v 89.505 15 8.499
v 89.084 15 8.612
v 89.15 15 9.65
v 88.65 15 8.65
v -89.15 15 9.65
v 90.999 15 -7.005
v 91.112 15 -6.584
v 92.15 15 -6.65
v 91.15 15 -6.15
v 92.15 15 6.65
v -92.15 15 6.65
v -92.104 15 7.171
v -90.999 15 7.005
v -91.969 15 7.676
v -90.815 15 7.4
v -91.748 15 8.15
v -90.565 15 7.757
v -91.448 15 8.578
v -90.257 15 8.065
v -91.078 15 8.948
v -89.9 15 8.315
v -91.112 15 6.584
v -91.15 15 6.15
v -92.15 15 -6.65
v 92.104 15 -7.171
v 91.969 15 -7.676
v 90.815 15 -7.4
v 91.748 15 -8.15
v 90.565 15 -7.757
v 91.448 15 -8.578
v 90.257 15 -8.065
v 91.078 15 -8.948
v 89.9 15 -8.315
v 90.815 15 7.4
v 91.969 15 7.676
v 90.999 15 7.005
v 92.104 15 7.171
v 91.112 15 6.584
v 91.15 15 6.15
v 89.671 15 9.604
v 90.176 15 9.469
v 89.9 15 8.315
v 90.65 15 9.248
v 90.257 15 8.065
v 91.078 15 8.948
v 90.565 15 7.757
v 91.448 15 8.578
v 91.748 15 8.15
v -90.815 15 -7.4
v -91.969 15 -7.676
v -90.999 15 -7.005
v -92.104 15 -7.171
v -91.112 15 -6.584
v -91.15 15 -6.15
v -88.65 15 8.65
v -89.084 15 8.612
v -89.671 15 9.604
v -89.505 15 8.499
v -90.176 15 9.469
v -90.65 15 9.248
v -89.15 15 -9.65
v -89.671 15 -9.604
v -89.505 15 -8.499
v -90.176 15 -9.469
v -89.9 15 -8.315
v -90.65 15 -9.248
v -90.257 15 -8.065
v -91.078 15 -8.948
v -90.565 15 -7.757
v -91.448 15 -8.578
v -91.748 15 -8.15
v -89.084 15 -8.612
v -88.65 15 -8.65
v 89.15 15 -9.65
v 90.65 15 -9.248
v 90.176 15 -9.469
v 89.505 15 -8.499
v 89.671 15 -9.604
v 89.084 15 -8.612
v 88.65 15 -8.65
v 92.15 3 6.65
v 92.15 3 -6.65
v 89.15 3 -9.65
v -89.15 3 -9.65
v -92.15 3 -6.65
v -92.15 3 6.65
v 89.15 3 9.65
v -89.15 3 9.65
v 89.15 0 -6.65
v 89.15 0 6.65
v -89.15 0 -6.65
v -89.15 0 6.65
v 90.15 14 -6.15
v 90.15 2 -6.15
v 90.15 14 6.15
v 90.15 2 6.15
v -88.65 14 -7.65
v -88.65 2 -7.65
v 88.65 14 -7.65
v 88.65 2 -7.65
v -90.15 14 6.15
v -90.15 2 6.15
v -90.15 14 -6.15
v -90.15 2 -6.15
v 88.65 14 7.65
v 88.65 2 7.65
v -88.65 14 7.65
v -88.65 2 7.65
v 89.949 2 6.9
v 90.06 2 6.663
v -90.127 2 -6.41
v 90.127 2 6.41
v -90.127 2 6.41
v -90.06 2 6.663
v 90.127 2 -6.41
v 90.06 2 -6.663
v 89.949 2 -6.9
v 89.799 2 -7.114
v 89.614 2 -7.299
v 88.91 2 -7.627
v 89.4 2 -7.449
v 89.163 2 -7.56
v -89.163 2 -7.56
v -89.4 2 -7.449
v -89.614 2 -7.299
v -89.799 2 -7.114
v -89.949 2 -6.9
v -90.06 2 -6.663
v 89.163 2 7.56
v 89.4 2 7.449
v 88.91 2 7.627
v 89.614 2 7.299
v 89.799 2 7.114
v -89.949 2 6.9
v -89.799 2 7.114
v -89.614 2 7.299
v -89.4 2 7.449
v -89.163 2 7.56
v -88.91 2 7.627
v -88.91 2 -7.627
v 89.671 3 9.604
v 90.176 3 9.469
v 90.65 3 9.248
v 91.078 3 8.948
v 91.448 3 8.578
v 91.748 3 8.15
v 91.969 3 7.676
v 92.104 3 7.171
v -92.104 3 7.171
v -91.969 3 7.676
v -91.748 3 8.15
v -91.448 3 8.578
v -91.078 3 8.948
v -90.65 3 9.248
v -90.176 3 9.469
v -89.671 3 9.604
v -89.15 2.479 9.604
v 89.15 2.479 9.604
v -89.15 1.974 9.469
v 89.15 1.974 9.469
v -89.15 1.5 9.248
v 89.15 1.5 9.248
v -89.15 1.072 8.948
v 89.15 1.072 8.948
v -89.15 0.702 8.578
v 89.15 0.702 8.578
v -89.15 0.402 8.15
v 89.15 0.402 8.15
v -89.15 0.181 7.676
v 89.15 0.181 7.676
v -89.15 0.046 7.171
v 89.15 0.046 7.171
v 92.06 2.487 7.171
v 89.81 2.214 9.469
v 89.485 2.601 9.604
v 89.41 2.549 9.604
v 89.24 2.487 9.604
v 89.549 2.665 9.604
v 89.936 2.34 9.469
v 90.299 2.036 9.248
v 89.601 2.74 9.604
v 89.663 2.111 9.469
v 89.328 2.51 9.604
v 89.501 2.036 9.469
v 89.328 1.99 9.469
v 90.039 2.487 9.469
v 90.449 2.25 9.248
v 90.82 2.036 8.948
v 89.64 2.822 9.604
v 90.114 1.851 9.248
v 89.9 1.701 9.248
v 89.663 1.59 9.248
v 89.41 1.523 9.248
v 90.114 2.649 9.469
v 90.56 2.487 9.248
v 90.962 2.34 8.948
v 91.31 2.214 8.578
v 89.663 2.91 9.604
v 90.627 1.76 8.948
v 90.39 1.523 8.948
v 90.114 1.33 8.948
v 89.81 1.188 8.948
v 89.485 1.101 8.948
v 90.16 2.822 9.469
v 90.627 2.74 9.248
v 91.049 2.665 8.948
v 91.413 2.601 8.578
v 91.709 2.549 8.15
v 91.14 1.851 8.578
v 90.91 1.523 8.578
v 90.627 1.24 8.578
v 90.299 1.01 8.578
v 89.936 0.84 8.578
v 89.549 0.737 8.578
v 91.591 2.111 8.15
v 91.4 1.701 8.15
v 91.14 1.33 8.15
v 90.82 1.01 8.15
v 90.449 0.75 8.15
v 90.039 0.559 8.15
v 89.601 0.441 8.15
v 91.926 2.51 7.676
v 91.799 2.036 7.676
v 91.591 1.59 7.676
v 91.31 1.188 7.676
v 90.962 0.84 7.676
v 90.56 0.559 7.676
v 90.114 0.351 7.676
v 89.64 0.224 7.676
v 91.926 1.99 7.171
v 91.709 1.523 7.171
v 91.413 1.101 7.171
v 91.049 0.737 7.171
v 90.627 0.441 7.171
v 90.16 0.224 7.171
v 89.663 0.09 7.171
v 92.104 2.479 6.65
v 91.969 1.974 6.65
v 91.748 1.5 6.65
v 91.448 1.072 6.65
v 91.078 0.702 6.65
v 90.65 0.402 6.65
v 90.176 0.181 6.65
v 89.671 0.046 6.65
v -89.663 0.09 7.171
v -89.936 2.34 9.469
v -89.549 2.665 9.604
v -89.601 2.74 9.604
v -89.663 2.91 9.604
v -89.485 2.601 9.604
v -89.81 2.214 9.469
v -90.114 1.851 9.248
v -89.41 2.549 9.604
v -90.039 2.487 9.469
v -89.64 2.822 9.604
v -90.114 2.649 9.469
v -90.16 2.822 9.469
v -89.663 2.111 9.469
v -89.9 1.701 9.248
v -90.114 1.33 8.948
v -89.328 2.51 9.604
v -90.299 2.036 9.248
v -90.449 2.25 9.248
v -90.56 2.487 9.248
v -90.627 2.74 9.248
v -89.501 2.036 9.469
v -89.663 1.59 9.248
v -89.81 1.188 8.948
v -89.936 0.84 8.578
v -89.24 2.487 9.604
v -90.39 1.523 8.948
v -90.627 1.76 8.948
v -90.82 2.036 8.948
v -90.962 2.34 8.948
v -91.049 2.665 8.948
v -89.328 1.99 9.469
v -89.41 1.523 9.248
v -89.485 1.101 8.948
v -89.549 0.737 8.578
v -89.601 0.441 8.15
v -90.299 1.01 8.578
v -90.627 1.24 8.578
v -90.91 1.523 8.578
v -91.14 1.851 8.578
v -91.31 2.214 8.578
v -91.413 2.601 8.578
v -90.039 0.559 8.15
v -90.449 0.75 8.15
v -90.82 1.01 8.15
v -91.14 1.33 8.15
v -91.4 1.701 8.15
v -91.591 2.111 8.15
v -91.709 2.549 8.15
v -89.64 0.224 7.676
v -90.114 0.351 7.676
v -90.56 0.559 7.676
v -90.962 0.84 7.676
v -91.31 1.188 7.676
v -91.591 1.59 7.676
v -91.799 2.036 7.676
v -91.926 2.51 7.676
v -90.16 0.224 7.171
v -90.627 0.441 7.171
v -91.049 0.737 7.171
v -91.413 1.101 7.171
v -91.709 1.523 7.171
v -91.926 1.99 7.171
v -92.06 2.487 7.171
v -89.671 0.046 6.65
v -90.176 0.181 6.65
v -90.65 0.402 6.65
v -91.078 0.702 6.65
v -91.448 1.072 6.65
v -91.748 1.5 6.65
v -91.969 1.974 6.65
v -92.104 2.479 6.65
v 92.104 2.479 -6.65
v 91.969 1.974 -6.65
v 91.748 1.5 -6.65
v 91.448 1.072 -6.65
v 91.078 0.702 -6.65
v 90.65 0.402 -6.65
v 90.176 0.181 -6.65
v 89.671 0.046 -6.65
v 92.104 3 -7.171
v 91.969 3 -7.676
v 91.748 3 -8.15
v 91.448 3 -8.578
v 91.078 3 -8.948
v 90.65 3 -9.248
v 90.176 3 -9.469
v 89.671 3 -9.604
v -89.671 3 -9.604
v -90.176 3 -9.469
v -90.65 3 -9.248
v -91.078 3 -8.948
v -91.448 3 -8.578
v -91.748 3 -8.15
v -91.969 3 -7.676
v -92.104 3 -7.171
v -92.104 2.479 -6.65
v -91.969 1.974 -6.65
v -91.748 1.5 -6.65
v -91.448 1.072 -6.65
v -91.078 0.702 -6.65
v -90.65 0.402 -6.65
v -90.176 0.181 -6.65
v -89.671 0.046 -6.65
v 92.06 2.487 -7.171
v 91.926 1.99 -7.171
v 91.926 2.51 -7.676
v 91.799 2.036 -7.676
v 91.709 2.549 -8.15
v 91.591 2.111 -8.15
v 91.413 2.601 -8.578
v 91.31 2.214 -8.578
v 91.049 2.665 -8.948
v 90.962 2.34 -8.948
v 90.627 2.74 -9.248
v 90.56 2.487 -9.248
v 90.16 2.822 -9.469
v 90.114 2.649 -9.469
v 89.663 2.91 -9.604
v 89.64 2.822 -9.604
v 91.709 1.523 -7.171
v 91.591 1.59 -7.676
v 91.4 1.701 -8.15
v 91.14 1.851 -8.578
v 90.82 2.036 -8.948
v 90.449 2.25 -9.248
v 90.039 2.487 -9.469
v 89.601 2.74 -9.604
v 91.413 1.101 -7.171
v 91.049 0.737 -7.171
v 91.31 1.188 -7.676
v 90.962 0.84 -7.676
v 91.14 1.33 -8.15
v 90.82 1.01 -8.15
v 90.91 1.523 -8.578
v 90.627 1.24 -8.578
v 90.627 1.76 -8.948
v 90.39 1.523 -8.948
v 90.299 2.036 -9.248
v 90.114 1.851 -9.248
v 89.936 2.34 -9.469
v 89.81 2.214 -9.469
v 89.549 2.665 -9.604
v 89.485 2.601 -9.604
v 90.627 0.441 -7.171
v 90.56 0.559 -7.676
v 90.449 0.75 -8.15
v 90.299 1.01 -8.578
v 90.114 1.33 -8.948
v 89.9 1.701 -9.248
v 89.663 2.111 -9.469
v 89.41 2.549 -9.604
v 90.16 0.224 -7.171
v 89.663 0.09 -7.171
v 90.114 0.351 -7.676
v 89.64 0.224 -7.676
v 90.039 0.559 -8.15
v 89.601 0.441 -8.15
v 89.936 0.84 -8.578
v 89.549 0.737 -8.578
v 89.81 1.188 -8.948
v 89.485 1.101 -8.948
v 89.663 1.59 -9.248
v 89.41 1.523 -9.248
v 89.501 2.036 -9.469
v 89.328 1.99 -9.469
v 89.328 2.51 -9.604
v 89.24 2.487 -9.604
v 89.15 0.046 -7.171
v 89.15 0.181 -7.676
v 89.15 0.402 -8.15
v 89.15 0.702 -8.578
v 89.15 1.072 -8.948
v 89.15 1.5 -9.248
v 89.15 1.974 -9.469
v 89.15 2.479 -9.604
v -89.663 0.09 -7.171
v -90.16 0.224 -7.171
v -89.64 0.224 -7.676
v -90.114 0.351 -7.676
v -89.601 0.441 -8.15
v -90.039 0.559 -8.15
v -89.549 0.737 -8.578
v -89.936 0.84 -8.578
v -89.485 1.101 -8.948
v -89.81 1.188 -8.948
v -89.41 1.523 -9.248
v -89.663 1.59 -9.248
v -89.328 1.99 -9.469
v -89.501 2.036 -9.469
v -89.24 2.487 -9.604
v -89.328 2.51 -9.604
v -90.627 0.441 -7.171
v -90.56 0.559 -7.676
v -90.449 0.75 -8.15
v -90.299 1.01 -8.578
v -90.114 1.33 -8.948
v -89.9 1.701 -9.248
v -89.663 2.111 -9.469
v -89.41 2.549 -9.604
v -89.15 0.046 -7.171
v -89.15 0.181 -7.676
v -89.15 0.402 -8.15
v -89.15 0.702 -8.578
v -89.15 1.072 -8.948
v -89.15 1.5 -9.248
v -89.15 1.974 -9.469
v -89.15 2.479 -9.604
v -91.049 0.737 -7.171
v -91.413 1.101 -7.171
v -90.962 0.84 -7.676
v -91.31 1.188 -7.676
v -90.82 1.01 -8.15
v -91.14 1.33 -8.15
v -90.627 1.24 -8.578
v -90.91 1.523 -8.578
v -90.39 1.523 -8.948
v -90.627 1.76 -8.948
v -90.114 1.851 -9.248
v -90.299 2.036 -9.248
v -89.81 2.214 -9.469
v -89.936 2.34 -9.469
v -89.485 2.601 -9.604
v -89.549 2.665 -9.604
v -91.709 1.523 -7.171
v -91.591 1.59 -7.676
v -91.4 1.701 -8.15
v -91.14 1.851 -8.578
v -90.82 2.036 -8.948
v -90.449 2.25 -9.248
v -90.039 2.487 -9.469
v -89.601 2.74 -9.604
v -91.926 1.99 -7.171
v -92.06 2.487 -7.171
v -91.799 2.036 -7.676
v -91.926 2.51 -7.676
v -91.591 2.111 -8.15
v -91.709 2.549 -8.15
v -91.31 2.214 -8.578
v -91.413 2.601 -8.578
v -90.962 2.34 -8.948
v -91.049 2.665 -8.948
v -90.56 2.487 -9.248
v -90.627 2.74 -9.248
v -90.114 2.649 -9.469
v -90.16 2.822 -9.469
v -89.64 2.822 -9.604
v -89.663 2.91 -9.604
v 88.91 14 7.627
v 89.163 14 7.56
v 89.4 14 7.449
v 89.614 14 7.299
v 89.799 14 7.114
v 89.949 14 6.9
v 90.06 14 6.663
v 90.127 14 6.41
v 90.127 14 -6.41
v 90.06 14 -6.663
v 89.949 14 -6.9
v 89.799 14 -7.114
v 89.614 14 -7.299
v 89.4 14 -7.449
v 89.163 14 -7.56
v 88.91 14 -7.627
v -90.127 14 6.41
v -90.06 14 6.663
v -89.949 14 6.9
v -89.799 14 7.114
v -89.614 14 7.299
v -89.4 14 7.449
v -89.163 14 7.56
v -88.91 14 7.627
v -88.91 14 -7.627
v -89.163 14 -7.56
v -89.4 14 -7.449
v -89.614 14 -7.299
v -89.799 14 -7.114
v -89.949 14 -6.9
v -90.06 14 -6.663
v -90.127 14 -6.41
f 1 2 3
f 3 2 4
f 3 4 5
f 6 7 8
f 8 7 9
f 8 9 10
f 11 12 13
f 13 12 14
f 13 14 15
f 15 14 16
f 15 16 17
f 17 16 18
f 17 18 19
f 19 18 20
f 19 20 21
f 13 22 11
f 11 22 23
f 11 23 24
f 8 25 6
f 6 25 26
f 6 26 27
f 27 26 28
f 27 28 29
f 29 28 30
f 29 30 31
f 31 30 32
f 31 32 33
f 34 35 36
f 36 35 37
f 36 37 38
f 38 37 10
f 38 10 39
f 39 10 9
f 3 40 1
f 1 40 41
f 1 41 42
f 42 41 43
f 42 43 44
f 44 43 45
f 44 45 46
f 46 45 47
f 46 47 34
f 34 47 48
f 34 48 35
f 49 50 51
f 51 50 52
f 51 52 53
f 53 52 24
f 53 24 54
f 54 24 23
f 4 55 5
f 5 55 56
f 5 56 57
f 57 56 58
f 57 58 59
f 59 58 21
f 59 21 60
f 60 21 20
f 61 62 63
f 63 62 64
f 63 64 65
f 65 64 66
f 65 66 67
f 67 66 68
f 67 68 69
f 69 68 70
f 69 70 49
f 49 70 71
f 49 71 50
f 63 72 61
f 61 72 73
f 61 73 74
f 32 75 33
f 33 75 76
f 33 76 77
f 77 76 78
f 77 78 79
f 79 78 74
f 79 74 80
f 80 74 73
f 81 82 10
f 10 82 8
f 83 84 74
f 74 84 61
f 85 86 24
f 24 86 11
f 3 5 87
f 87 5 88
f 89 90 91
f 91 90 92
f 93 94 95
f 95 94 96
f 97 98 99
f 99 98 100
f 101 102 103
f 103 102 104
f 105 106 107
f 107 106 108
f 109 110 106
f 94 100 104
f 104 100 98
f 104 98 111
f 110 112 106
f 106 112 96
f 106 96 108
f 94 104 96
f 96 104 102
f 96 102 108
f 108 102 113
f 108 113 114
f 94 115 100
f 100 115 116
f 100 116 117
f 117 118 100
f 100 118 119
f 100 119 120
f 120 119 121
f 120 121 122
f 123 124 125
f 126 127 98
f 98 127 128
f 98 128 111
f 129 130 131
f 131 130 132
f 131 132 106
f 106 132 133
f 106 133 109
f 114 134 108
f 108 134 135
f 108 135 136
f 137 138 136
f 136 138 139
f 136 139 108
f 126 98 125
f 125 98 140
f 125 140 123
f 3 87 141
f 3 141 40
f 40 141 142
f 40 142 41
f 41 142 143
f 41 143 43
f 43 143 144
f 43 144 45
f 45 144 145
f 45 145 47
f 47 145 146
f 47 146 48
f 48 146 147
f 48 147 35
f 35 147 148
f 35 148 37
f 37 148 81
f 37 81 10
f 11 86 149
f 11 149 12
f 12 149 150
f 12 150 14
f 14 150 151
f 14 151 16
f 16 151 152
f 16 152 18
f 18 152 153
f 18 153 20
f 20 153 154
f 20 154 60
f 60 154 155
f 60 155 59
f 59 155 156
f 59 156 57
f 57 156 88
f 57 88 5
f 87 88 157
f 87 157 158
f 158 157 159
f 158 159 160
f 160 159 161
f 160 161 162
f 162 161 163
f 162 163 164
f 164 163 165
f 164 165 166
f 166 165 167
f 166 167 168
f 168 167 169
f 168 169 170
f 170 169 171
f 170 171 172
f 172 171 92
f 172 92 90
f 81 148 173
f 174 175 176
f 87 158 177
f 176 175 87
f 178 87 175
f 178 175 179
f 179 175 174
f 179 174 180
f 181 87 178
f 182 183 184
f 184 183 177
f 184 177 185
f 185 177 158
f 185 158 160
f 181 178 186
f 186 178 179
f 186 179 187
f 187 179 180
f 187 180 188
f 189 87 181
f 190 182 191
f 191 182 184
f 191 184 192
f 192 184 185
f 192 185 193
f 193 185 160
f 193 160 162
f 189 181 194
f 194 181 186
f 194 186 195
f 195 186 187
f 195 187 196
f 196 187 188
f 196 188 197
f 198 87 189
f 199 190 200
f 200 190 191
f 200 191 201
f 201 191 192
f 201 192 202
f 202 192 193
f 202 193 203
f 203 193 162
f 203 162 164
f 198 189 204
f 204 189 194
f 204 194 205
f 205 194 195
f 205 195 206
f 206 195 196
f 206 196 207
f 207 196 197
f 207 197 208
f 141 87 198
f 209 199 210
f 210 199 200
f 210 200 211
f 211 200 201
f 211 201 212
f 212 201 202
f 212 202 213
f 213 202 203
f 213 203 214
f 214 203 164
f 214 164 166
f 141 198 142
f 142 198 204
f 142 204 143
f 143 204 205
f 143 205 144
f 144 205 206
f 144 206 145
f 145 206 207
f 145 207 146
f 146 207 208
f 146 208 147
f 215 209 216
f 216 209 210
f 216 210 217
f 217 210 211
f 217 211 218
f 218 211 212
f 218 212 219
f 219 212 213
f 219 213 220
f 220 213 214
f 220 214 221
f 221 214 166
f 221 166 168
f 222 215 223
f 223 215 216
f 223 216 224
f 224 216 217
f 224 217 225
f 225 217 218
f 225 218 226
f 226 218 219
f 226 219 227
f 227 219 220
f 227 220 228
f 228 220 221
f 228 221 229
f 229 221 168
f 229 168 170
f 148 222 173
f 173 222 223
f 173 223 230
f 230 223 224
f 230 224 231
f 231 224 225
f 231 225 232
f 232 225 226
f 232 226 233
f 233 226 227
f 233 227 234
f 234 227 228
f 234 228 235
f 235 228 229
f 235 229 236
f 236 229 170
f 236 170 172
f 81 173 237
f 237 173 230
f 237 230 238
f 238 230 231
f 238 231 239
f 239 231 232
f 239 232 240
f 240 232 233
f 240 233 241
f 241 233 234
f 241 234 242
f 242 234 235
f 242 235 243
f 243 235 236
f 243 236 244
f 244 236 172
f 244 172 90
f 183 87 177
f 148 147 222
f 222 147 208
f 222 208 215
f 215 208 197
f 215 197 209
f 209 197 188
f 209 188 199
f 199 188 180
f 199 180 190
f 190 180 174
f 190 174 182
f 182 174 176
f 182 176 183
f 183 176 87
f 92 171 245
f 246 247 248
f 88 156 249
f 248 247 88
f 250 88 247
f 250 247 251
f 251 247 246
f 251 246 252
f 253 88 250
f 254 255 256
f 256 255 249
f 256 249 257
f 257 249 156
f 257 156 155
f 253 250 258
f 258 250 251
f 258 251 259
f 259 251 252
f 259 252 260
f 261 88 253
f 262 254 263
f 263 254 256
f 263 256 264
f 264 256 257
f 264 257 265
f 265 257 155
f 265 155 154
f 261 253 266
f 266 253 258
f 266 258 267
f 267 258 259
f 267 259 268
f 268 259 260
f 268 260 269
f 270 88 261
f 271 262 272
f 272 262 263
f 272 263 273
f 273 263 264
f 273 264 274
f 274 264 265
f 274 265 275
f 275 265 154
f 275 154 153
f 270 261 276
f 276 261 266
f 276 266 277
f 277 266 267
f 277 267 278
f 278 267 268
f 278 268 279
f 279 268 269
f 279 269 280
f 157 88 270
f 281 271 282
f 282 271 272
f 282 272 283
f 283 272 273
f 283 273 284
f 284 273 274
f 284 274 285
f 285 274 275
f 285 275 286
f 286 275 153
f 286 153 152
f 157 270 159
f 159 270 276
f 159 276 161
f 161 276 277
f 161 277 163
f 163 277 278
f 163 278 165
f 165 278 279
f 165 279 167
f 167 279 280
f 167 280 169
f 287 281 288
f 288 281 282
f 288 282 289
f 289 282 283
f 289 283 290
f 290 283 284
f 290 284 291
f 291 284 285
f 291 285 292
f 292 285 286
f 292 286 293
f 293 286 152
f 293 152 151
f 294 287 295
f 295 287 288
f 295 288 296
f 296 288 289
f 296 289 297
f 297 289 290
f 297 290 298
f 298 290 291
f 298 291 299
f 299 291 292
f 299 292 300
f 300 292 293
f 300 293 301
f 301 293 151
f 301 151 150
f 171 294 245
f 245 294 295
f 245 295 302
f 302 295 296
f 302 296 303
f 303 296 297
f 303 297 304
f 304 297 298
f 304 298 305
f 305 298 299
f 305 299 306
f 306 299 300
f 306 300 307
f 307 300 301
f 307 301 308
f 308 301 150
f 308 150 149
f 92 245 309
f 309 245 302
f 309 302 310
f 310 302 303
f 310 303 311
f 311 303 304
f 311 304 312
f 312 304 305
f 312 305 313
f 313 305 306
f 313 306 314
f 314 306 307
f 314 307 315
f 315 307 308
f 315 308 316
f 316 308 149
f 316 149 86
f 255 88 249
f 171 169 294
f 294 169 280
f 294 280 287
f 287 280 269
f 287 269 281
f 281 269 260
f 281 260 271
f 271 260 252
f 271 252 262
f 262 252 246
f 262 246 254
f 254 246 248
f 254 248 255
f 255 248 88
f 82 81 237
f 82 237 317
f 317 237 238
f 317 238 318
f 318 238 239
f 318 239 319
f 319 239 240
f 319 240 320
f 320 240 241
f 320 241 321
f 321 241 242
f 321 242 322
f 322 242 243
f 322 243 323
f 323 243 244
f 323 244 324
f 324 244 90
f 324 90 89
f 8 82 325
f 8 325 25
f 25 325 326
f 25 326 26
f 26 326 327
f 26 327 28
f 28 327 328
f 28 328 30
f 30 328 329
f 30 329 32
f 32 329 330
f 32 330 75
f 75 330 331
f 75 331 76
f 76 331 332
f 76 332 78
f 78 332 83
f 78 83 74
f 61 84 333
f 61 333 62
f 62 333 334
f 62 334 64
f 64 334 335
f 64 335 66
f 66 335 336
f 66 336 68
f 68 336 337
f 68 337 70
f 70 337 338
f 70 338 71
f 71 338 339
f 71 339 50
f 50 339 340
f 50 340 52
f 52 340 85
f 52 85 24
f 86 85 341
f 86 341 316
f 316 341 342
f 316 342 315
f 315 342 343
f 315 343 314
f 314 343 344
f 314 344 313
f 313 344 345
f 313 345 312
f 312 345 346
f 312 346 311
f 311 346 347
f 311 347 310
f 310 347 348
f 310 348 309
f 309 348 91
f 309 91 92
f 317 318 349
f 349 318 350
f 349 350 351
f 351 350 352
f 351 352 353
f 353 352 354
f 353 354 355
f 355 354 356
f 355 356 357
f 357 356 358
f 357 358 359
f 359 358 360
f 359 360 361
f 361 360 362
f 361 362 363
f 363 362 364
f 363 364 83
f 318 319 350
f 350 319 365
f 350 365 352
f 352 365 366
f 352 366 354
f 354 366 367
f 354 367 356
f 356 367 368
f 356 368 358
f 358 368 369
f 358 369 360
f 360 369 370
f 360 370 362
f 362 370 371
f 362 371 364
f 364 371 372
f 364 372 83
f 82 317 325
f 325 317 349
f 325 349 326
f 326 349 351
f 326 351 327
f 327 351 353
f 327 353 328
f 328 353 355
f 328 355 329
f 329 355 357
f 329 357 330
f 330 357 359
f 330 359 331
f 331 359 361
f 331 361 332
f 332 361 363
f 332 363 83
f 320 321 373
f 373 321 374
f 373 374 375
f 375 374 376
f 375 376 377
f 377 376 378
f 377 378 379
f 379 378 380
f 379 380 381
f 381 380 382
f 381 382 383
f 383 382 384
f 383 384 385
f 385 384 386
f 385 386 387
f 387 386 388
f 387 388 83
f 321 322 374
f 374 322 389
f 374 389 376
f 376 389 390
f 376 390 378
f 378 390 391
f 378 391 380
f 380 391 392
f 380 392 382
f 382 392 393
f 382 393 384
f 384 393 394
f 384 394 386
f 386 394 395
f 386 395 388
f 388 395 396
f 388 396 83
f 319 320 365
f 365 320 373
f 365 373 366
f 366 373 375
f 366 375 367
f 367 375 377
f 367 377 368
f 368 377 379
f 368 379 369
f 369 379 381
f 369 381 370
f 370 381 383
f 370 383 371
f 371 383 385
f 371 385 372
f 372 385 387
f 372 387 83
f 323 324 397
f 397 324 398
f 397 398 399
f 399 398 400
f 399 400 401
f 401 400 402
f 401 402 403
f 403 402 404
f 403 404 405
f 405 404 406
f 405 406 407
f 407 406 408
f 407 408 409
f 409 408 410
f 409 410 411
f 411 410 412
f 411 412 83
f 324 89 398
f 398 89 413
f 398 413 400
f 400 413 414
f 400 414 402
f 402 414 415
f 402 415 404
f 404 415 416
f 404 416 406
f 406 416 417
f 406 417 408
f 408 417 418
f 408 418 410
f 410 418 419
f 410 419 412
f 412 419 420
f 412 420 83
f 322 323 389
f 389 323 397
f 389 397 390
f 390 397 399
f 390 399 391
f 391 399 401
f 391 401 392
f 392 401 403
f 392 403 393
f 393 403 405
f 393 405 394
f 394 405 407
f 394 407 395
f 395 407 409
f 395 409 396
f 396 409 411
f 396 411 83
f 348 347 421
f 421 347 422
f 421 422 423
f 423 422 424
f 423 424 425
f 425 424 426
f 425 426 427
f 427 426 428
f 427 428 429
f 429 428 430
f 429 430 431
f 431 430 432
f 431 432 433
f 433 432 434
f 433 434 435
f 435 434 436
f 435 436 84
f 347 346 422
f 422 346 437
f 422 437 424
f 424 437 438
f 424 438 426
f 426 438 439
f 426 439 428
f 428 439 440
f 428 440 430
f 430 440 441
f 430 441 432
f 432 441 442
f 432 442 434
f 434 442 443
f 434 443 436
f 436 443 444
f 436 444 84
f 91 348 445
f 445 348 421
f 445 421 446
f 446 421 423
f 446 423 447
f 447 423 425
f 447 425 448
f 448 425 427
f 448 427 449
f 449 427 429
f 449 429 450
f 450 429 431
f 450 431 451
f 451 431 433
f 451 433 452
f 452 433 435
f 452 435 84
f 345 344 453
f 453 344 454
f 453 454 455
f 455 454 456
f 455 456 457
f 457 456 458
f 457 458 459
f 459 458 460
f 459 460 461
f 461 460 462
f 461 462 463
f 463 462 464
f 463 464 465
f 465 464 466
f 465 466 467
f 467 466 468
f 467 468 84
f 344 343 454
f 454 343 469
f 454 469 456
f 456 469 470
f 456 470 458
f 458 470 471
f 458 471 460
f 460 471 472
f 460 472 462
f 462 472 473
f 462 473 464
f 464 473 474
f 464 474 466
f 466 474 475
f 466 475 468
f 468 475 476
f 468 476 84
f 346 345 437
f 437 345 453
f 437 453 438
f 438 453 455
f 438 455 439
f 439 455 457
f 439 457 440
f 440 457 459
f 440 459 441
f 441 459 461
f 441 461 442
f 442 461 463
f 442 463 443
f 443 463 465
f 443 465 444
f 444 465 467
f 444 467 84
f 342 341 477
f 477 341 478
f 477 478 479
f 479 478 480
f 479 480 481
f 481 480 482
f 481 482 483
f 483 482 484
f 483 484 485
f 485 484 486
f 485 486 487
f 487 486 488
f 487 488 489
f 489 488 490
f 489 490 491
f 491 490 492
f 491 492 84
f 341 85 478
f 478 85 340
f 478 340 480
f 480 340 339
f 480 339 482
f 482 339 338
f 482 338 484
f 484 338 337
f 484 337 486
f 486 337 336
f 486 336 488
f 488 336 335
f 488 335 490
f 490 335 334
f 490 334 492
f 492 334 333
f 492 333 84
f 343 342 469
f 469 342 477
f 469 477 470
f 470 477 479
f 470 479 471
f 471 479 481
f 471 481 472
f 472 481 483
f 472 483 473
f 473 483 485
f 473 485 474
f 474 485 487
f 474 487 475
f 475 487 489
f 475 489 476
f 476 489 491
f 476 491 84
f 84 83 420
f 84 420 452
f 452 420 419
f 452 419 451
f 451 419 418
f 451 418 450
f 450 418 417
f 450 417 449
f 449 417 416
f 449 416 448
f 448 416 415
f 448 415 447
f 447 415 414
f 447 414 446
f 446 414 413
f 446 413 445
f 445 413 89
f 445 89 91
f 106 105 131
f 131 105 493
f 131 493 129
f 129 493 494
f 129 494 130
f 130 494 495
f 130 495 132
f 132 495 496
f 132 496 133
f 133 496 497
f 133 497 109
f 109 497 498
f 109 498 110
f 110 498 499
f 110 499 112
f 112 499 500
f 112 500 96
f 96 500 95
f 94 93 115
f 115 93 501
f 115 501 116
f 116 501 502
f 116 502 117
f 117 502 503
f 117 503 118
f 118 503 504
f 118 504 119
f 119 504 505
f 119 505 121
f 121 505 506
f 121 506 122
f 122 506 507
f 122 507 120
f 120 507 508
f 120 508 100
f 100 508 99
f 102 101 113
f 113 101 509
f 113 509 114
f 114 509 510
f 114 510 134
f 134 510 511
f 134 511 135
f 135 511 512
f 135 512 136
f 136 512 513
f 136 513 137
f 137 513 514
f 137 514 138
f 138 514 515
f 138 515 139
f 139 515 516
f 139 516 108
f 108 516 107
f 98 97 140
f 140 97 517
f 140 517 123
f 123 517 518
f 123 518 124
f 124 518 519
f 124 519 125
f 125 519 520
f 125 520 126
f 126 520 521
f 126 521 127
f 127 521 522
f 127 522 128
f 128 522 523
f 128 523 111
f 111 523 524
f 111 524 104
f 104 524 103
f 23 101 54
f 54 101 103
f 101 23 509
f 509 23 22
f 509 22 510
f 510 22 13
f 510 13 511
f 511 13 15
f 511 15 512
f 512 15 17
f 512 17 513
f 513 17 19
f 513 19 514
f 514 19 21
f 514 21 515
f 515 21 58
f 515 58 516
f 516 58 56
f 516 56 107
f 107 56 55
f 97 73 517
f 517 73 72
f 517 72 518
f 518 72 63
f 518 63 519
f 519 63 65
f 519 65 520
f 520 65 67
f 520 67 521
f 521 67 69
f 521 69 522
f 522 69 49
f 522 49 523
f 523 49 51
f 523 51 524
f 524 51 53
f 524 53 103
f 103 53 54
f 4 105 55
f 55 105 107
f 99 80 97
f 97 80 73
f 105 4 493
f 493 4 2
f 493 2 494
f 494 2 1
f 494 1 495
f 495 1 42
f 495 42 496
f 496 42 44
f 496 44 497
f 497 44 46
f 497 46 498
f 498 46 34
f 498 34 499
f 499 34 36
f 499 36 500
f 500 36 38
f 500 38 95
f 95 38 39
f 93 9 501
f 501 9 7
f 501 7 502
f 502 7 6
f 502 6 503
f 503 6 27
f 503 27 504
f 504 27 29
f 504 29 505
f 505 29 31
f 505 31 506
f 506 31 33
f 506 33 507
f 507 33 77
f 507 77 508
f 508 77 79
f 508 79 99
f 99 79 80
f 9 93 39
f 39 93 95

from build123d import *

# Parameters (mm, degrees)
SKETCH2_W           = 184.3
SKETCH2_H           = 19.3
BOSS_EXTRUDE1_DEPTH = 15
SHELL1_T            = -2
FILLET1_R           = 3
FILLET2_R           = 1.5
CHAMFER1_SIZE       = 1


with BuildPart() as part:
    # Sketch2 → Boss-Extrude1 (new body)
    with BuildSketch(Plane(origin=(0, 0, 0), x_dir=(1, 0, 0), z_dir=(0, 1, 0))):
        Rectangle(SKETCH2_W, SKETCH2_H)
    extrude(amount=BOSS_EXTRUDE1_DEPTH)

    # Shell1
    shell1_openings = [part.faces().sort_by_distance(p)[0] for p in [
        (0, 15, 0),
    ]]
    offset(amount=SHELL1_T, openings=shell1_openings, kind=Kind.INTERSECTION)

    # Fillet1
    fillet1_edges = [part.edges().sort_by_distance(p)[0] for p in [
        (0, 0, 9.65),
        (-92.15, 0, 0),
        (0, 0, -9.65),
        (92.15, 0, 0),
        (92.15, 7.5, 9.65),
        (-92.15, 7.5, 9.65),
        (-92.15, 7.5, -9.65),
        (92.15, 7.5, -9.65),
    ]]
    fillet(fillet1_edges, radius=FILLET1_R)

    # Fillet2
    fillet2_edges = [part.edges().sort_by_distance(p)[0] for p in [
        (90.15, 8.5, 7.65),
        (90.15, 8.5, -7.65),
        (-90.15, 8.5, -7.65),
        (-90.15, 8.5, 7.65),
    ]]
    fillet(fillet2_edges, radius=FILLET2_R)

    # Chamfer1
    chamfer1_edges = [part.edges().sort_by_distance(p)[0] for p in [
        (0, 15, 7.65),
        (90.15, 15, 0),
        (0, 15, -7.65),
        (-90.15, 15, 0),
        (89.710660172, 15, 7.210660172),
        (89.710660172, 15, -7.210660172),
        (-89.710660172, 15, 7.210660172),
        (-89.710660172, 15, -7.210660172),
    ]]
    chamfer(chamfer1_edges, length=CHAMFER1_SIZE)


solid = part.part
